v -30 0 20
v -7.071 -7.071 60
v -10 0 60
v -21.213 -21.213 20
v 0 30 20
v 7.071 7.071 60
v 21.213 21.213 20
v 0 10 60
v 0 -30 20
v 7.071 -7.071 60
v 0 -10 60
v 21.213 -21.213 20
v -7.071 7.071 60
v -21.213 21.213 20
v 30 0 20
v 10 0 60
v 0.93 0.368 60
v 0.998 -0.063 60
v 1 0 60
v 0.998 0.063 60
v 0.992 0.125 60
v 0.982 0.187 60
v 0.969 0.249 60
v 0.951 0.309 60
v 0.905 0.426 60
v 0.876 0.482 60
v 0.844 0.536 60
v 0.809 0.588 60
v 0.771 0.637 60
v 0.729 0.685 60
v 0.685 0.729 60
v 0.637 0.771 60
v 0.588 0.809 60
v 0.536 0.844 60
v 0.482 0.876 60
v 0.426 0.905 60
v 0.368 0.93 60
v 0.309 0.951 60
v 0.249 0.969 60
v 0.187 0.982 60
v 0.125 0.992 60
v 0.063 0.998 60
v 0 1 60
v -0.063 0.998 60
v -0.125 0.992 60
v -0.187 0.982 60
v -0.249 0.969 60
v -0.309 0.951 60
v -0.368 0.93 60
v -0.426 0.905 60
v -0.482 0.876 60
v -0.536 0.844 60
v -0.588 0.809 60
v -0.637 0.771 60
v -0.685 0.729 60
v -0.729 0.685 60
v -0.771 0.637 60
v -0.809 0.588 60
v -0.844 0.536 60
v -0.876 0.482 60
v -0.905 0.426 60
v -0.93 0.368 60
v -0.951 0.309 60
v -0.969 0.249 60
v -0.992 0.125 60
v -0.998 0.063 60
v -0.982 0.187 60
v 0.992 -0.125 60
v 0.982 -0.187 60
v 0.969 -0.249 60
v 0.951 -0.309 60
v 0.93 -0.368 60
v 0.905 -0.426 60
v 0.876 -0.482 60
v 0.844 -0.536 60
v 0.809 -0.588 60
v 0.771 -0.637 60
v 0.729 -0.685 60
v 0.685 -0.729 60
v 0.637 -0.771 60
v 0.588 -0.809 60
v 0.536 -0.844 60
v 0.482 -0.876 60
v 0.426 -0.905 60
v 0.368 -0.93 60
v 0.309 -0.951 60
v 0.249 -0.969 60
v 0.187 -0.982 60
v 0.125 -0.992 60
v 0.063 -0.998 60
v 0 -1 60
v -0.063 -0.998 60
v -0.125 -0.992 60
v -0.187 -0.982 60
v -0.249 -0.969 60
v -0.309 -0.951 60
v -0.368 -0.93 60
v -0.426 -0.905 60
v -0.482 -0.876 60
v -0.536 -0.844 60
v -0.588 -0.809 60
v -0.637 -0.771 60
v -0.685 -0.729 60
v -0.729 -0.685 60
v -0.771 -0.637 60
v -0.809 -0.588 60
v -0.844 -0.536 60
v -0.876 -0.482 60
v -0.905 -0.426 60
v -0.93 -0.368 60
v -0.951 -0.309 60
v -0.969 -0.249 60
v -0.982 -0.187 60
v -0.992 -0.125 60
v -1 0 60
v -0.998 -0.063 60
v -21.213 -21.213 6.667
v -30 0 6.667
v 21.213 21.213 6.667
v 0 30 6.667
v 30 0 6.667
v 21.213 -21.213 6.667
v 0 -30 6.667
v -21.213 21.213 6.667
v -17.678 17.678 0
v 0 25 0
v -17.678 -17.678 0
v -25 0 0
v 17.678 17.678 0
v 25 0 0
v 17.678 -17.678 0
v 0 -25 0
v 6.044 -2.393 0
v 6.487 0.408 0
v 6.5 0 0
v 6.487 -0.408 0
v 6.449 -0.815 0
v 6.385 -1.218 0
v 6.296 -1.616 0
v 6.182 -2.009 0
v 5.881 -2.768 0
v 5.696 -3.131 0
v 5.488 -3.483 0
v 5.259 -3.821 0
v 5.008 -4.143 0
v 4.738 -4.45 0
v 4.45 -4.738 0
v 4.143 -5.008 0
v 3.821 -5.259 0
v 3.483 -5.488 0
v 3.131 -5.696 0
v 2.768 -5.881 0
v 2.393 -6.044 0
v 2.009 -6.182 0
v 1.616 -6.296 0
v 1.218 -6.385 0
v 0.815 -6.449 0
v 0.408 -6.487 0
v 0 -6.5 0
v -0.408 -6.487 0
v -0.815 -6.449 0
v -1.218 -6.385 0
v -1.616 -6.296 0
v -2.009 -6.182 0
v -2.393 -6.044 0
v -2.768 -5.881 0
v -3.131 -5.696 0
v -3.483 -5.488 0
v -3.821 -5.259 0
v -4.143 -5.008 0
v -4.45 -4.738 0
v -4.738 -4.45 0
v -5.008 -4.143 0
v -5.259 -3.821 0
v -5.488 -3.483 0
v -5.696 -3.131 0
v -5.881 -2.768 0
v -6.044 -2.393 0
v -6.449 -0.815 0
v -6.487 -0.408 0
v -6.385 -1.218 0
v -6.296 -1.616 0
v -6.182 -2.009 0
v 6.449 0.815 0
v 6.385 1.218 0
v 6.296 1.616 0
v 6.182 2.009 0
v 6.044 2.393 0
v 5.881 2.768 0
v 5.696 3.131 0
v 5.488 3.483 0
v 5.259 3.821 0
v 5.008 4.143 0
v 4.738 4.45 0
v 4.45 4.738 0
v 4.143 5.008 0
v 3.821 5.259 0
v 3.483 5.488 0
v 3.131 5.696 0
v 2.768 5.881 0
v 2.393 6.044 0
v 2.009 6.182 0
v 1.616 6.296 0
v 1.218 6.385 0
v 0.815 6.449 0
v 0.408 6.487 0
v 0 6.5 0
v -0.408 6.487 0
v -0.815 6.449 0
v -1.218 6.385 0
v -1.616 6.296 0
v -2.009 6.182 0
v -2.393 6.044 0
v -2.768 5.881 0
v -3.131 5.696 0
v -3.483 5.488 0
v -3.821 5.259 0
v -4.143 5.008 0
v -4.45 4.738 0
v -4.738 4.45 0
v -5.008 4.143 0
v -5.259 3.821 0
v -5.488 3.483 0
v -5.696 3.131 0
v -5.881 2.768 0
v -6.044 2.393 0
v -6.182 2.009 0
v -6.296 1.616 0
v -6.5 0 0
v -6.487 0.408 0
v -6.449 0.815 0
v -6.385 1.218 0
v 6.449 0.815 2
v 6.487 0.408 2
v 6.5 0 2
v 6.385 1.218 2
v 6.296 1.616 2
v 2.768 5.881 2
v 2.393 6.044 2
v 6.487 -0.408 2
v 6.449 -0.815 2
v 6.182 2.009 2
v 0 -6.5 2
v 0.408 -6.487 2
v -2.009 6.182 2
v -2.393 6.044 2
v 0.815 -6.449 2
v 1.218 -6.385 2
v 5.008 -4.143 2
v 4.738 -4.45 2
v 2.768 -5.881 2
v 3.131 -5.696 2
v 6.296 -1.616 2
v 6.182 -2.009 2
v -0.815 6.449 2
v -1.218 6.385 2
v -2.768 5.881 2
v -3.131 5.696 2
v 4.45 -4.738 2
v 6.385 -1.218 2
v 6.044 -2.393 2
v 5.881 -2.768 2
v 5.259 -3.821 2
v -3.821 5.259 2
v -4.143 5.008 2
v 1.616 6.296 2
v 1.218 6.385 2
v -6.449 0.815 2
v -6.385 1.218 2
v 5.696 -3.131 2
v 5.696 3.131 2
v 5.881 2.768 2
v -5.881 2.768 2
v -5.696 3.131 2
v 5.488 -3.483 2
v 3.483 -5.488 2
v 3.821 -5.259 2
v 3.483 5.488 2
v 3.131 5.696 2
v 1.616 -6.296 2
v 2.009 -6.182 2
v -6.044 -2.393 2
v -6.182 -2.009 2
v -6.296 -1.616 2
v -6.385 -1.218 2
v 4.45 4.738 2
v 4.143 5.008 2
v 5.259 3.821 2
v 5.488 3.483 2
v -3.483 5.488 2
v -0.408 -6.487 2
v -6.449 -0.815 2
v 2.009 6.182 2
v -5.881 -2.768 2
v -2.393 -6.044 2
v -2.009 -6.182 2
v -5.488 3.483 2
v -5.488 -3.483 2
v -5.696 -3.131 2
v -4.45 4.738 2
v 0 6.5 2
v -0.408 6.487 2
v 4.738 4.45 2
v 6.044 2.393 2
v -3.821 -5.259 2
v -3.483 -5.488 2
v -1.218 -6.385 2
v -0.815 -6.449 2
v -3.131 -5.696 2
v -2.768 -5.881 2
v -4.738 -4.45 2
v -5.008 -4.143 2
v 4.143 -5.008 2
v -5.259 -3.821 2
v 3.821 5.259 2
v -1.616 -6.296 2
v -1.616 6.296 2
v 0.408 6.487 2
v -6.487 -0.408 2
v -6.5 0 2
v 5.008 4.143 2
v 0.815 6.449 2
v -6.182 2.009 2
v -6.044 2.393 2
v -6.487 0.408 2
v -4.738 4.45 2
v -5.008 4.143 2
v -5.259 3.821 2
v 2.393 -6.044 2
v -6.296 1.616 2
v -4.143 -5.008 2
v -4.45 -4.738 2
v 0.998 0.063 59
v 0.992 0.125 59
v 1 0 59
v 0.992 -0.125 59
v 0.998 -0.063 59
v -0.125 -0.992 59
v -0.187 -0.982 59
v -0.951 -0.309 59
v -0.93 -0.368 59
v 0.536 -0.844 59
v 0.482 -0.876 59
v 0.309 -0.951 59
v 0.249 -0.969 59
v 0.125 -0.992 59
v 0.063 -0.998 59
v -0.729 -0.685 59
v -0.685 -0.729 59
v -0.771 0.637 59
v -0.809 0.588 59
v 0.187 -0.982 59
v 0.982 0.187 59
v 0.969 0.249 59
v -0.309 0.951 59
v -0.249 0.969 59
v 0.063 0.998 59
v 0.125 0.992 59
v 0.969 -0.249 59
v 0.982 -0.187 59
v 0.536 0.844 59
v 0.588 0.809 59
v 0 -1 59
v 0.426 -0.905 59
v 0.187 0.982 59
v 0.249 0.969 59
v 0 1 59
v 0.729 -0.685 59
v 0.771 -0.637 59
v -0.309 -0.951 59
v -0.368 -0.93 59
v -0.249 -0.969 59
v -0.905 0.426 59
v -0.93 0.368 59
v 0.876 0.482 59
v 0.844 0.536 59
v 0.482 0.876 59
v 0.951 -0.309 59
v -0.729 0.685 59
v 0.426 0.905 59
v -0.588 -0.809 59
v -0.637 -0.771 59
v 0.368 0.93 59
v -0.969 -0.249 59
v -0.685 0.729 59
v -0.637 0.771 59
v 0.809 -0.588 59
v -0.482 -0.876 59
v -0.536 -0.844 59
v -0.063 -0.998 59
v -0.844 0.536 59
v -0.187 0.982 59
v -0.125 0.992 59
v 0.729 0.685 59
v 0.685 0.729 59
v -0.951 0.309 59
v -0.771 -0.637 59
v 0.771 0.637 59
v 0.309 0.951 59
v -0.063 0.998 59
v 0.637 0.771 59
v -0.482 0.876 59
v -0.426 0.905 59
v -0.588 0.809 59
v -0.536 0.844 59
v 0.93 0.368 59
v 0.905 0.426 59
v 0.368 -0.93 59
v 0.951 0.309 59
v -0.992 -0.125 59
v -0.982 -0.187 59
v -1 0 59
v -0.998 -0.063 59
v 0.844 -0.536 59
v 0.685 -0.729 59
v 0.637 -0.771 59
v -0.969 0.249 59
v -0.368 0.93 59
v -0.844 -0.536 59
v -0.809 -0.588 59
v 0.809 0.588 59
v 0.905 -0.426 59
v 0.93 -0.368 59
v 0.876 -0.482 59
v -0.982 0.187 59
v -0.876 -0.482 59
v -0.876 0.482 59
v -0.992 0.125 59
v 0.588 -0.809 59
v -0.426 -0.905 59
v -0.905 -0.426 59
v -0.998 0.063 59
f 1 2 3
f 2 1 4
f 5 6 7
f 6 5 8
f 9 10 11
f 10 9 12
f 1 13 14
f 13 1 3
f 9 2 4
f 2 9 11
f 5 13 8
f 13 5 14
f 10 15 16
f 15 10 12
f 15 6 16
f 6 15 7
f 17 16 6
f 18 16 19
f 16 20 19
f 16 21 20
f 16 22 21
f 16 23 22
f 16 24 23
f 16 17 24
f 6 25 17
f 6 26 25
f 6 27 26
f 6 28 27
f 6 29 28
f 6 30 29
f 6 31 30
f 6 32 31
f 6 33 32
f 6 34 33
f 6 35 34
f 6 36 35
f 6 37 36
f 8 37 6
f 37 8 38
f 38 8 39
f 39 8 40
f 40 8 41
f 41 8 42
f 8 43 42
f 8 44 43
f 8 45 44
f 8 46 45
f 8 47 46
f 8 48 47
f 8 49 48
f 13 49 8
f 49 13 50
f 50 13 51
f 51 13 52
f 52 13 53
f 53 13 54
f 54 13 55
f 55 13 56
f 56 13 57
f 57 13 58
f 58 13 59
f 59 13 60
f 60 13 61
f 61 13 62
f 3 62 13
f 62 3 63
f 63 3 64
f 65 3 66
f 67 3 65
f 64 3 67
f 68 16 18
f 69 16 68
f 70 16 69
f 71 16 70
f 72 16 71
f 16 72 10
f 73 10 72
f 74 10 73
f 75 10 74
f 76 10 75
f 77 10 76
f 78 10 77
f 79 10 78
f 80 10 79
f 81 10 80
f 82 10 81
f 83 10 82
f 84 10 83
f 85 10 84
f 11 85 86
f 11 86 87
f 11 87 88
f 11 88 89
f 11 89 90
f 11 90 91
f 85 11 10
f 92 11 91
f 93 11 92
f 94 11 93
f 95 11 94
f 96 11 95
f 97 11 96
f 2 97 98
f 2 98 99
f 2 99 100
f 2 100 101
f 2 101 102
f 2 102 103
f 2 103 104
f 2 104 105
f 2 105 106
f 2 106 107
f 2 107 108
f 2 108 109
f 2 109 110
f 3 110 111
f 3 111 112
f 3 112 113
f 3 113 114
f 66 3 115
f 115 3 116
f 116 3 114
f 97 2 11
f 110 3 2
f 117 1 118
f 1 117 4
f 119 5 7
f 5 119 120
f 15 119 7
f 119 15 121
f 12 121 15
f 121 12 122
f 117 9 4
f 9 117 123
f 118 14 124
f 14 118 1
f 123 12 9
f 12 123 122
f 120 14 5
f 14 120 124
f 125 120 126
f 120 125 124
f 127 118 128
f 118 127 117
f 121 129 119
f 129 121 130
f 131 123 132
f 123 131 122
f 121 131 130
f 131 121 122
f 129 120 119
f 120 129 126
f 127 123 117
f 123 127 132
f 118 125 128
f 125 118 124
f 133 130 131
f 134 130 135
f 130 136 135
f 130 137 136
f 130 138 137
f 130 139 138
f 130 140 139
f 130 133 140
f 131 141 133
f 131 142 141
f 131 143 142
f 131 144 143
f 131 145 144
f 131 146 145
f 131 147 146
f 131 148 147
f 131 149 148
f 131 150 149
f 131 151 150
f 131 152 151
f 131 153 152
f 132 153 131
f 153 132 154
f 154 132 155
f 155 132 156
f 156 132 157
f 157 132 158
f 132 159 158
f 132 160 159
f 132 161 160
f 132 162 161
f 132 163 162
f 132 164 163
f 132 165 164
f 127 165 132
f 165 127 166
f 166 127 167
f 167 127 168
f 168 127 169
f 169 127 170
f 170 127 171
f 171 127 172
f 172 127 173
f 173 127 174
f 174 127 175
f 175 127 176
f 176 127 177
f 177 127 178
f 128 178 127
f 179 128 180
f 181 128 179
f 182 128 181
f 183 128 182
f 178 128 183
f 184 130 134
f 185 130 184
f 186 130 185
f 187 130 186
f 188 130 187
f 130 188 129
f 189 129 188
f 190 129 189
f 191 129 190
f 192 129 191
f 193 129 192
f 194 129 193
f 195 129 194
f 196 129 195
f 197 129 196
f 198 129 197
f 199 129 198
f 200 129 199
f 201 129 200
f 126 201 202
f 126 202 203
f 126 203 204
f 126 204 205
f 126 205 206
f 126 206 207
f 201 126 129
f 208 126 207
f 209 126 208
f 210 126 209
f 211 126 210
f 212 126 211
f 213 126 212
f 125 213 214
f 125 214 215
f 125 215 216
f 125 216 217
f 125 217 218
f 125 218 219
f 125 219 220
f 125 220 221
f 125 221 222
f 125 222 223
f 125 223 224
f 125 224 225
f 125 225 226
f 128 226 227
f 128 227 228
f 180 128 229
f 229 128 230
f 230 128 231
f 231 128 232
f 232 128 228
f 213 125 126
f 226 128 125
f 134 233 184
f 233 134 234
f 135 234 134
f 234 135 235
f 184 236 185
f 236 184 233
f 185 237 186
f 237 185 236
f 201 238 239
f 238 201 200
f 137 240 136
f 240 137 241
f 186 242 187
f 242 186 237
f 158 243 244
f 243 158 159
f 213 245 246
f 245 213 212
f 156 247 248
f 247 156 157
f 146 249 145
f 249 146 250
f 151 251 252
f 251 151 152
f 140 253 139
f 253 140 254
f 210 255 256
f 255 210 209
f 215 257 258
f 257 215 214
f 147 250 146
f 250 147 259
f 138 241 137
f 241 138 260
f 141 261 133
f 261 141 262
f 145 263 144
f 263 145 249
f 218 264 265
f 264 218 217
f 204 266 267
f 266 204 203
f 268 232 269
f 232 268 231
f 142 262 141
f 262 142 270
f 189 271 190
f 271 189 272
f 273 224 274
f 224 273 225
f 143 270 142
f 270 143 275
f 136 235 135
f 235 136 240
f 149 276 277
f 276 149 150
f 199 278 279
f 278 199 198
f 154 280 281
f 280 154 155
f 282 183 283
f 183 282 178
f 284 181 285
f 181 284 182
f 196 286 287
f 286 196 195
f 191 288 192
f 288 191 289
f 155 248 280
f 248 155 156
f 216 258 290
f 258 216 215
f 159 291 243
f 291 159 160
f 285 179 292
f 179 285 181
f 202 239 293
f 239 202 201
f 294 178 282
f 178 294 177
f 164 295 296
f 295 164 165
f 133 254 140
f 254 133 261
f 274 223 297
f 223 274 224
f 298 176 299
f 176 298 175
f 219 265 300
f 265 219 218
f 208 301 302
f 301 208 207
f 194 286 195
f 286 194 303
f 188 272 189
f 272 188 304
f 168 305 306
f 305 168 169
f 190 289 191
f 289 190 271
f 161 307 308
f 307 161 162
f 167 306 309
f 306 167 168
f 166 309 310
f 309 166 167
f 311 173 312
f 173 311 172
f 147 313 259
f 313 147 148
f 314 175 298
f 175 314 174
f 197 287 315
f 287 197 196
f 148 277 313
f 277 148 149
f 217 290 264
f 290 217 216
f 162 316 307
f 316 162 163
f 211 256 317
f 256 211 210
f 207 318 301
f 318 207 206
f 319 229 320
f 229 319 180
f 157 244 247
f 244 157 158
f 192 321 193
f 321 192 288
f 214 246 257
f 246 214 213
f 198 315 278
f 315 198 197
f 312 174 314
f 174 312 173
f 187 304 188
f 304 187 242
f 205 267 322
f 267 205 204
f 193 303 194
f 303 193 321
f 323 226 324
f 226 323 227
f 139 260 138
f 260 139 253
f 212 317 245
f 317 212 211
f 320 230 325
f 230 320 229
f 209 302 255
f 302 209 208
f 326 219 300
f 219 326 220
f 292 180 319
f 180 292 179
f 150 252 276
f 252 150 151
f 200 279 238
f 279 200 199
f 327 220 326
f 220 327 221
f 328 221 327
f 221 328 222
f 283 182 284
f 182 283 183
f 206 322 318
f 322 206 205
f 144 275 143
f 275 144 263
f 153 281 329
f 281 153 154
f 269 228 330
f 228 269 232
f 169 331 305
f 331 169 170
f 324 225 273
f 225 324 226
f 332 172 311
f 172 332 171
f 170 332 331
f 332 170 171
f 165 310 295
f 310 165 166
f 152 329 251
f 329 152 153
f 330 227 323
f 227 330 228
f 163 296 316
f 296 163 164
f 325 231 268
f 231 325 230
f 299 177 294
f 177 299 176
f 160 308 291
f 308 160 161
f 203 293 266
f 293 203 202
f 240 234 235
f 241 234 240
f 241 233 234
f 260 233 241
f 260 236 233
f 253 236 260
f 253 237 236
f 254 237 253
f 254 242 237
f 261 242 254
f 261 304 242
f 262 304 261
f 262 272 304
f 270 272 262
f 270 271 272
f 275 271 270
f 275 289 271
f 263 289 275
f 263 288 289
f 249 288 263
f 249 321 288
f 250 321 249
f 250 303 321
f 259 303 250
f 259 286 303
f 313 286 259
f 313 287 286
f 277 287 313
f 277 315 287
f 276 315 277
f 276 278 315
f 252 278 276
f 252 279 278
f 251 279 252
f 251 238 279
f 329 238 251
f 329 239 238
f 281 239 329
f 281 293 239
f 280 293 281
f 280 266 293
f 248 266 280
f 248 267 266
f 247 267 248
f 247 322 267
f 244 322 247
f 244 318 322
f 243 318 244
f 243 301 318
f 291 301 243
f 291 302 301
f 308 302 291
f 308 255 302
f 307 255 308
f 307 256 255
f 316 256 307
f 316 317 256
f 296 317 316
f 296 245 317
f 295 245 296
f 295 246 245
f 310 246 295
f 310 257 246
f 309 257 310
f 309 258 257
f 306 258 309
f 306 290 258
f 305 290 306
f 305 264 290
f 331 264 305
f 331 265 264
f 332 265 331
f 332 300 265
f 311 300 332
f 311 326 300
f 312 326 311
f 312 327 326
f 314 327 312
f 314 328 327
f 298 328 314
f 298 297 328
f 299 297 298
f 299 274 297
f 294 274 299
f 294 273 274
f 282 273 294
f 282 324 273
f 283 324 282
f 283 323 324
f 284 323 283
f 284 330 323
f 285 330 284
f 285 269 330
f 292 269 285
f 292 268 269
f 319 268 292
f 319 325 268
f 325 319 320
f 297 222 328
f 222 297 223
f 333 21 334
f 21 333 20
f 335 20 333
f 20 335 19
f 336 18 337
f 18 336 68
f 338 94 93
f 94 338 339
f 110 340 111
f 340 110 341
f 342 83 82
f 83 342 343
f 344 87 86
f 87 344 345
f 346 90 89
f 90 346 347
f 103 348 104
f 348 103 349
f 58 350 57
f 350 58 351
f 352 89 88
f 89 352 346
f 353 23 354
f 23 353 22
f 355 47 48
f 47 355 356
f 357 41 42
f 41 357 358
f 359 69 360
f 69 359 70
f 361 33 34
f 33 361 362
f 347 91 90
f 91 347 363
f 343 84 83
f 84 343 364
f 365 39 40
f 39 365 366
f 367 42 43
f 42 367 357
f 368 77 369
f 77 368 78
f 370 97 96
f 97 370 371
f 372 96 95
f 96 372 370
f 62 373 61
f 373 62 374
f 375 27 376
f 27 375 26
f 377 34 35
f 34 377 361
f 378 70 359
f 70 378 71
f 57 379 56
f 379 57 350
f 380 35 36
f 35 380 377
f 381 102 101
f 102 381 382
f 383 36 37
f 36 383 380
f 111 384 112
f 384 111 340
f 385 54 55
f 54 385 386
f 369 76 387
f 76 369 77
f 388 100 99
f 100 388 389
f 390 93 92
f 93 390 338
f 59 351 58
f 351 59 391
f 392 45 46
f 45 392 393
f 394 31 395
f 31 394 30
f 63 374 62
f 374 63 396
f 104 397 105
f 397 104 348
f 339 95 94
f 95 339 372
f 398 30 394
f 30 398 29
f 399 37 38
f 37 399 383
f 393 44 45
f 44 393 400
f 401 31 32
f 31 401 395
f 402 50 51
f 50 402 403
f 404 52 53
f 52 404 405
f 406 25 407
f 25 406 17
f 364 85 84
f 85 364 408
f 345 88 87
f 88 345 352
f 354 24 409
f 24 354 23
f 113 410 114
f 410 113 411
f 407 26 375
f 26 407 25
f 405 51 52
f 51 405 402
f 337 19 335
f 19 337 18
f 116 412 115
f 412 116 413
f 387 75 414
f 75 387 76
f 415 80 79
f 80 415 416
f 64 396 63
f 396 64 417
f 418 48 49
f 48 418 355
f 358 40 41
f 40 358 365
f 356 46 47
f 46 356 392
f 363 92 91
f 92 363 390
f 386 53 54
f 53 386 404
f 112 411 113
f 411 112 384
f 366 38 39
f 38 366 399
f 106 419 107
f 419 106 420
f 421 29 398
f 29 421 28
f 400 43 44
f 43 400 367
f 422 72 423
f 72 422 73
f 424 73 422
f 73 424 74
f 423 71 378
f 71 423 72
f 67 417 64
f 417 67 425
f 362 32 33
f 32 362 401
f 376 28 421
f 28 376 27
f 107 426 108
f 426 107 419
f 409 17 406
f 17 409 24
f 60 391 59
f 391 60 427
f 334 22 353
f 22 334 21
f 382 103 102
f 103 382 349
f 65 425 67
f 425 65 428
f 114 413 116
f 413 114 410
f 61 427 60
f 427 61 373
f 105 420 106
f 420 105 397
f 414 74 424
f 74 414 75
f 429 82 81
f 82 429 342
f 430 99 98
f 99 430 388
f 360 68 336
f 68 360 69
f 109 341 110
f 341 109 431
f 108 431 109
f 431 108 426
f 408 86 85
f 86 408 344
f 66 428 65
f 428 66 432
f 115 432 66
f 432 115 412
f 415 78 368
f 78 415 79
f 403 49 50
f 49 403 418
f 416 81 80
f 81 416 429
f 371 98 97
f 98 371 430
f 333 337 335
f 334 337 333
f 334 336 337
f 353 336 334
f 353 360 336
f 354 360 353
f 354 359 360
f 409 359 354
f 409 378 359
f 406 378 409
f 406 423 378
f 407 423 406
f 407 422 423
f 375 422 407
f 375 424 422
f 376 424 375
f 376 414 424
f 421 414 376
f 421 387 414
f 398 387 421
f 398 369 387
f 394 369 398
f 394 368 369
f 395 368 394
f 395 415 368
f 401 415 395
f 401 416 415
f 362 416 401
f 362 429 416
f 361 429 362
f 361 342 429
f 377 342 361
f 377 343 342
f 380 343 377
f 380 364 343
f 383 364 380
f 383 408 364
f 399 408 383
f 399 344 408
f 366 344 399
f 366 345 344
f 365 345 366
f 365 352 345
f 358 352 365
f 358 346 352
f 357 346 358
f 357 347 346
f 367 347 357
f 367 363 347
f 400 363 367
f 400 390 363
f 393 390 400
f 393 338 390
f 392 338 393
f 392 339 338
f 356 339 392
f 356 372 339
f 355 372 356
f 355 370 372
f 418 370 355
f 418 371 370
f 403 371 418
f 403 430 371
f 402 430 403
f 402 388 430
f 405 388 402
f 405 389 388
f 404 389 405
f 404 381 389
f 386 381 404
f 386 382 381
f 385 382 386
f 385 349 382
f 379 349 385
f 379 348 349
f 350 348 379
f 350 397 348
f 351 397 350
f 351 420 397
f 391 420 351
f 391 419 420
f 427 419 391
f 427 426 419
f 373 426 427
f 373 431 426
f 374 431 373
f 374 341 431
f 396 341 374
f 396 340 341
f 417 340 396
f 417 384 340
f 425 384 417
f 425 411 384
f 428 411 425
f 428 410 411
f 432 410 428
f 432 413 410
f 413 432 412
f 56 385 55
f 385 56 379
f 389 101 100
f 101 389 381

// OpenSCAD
$fn=8;
hauteur_poignet=60;
difference(){
union(){


translate([0,0,hauteur_poignet/3]){
cylinder(2*hauteur_poignet/3,d1=60,d2=20);
}

translate([0,0,hauteur_poignet/9]){
    cylinder(2*hauteur_poignet/9, d=60);
}
cylinder(hauteur_poignet/9, d1=50,d2=60);
}
cylinder(2,d=13,$fn=100);
translate([0,0,hauteur_poignet-1]){
cylinder(20,d=2,$fn=100);
}
}
